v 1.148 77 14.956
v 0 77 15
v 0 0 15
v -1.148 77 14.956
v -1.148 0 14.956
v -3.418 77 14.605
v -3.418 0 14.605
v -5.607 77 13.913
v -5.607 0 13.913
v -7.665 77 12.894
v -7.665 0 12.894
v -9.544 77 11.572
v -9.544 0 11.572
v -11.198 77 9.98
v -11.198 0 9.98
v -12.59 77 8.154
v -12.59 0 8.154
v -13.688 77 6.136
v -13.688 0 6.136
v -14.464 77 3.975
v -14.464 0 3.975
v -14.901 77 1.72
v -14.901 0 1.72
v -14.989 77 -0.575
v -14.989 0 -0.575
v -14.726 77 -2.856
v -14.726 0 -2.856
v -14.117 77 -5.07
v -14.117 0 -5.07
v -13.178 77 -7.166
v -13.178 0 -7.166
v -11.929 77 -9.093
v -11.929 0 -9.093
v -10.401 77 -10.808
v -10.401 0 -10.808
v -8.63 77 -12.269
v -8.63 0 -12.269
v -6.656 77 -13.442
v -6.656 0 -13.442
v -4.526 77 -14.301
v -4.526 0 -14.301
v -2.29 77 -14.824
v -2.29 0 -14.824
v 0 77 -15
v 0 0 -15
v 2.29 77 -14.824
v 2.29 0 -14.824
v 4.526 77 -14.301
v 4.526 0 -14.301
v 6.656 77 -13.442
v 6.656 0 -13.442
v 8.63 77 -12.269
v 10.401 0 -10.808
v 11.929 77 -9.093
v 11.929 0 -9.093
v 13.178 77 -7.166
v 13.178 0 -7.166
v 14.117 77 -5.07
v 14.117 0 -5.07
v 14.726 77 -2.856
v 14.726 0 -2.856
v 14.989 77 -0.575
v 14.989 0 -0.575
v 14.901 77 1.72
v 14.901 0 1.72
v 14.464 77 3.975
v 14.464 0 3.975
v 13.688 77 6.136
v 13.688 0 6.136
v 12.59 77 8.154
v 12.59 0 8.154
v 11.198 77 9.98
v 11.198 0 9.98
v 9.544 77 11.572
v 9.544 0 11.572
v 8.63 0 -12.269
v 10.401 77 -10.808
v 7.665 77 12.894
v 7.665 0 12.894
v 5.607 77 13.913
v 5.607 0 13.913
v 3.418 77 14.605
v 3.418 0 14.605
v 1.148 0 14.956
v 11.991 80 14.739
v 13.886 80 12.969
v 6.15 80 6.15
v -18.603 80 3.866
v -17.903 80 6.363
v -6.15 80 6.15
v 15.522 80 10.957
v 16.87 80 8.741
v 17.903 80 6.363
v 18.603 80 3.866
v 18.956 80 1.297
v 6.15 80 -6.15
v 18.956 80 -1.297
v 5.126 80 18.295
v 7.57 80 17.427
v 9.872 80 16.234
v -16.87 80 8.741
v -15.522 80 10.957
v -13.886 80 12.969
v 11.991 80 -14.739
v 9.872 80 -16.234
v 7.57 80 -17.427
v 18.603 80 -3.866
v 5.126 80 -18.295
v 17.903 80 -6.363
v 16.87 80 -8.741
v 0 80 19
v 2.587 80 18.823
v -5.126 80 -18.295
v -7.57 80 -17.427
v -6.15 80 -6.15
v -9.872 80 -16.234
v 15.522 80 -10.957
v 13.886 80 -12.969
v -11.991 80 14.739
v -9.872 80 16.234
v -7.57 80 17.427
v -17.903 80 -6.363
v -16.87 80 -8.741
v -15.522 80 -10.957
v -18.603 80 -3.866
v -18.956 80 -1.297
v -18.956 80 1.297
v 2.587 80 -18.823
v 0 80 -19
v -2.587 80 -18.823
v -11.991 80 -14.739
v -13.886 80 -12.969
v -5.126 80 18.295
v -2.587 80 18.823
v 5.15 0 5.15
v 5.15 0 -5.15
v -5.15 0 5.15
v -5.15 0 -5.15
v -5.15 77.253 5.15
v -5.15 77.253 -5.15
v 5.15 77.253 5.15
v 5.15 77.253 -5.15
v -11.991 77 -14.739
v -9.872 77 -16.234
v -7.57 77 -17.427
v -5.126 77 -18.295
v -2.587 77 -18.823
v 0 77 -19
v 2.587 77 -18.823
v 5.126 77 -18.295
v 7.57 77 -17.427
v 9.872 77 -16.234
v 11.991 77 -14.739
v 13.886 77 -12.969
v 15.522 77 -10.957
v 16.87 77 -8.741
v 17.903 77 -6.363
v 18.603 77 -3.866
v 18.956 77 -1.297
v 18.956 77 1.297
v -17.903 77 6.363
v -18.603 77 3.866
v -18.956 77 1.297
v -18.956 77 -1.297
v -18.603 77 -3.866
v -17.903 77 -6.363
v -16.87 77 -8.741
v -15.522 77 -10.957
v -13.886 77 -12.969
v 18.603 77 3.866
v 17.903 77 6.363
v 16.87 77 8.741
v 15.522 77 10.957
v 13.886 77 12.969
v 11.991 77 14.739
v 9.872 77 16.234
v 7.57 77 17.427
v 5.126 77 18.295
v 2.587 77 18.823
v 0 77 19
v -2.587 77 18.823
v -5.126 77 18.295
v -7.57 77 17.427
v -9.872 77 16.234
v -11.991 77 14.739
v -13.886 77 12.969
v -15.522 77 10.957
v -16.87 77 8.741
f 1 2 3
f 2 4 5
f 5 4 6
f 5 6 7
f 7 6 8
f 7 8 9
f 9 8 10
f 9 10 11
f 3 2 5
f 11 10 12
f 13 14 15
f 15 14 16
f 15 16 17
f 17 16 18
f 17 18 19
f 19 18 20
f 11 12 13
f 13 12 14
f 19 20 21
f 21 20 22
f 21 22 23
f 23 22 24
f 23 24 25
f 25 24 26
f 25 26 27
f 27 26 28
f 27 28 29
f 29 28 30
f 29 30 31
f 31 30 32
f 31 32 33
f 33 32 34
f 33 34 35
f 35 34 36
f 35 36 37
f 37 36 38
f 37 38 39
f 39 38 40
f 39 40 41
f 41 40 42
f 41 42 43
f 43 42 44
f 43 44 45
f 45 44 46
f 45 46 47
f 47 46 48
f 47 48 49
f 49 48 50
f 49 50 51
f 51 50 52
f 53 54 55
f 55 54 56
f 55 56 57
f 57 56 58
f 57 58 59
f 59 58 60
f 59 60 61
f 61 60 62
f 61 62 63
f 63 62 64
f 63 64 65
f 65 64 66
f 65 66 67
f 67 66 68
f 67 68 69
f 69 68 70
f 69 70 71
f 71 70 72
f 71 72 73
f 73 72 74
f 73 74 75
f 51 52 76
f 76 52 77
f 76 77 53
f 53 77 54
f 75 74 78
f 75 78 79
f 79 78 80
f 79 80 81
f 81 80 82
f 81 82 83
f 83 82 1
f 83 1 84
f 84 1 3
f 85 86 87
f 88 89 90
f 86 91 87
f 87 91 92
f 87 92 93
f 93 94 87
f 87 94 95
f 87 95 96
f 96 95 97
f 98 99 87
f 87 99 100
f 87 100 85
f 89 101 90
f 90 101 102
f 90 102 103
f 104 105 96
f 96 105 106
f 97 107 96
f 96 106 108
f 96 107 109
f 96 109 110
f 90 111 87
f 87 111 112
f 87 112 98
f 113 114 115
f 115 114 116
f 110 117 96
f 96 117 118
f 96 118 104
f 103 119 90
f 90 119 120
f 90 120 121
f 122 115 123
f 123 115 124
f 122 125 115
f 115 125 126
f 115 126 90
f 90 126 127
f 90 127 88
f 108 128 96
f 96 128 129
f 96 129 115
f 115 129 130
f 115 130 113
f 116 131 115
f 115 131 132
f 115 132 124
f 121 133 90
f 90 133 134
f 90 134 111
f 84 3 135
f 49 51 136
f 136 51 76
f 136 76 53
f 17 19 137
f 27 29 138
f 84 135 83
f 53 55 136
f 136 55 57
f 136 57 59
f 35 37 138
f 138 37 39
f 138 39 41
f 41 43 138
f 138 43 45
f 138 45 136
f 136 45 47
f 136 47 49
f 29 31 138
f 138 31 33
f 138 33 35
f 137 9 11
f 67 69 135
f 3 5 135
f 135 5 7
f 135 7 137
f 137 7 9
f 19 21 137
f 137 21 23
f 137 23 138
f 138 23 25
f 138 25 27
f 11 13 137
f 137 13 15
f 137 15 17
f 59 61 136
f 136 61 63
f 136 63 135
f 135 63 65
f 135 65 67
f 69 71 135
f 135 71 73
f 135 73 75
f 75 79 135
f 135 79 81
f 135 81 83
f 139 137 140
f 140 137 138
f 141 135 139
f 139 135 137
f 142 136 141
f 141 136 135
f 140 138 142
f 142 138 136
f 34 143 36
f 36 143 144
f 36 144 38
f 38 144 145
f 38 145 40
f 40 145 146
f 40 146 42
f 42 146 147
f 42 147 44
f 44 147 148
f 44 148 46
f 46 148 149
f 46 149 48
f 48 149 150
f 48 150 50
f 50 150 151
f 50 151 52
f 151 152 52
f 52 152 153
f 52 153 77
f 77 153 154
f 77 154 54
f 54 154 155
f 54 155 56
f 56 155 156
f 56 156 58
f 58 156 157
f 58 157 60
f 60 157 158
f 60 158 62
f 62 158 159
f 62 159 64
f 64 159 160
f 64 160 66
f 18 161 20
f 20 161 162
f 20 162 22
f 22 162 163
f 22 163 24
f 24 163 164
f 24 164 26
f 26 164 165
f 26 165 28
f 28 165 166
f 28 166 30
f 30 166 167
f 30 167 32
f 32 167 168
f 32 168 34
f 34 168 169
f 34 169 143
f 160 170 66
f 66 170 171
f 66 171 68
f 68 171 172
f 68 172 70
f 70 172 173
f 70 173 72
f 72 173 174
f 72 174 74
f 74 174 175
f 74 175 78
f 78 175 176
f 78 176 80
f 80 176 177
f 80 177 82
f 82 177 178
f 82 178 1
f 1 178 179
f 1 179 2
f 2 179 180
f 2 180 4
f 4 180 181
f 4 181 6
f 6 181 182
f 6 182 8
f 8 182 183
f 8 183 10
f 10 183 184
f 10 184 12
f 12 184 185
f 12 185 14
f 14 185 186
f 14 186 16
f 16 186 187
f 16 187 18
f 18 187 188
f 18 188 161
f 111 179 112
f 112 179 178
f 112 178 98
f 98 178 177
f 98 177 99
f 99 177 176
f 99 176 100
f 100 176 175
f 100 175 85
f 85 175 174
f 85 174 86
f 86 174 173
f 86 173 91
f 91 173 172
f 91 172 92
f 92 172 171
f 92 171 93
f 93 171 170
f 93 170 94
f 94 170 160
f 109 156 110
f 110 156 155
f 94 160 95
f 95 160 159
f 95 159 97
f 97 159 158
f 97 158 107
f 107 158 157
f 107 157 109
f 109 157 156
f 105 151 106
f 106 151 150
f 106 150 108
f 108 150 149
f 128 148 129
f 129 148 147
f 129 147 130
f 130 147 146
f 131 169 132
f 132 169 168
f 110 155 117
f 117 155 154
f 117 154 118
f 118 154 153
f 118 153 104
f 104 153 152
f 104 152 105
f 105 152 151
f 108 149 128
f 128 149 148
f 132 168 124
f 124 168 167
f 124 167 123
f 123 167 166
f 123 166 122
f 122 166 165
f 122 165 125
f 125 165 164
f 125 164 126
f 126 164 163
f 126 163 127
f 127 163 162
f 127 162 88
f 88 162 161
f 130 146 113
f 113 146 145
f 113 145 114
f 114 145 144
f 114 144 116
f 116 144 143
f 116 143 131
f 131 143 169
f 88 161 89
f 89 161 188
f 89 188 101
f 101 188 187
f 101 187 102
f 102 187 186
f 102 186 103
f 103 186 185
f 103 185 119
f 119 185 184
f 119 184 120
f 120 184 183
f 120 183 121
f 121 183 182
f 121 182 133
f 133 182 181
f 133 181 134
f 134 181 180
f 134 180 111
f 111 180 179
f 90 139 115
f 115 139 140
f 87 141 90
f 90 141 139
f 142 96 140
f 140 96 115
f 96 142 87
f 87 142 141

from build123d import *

# Parameters (mm, degrees)
SKETCH_1_R          = 15
SKETCH_1_W          = 10.3
SKETCH_1_H          = 10.3
EXTRUDE_1_DEPTH     = 80
SKETCH1_R           = 19
SKETCH1_W           = 10.3
SKETCH1_H           = 10.3
BOSS_EXTRUDE1_DEPTH = 3
CHAMFER1_SIZE       = 1
CHAMFER1_SIZE2      = 2.747477419


with BuildPart() as part:
    # Эскиз1 → Бобышка-Вытянуть1 (new body)
    with BuildSketch(Plane(origin=(0, 0, 0), x_dir=(1, 0, 0), z_dir=(0, 1, 0))):
        Circle(SKETCH_1_R)
        Rectangle(SKETCH_1_W, SKETCH_1_H, mode=Mode.SUBTRACT)
    extrude(amount=EXTRUDE_1_DEPTH)

    # Sketch1 → Boss-Extrude1 (add)
    with BuildSketch(Plane(origin=(0, 80, 0), x_dir=(1, 0, 0), z_dir=(0, 1, 0))):
        Circle(SKETCH1_R)
        Rectangle(SKETCH1_W, SKETCH1_H, mode=Mode.SUBTRACT)
    extrude(amount=-BOSS_EXTRUDE1_DEPTH)

    # Chamfer1
    chamfer1_edges = [part.edges().sort_by_distance(p)[0] for p in [
        (0, 80, -5.15),
        (-5.15, 80, 0),
        (0, 80, 5.15),
        (5.15, 80, 0),
    ]]
    chamfer1_side = [part.faces().sort_by_distance(p)[0] for p in [
        (-18.462598846, 80, 0),
    ]]
    chamfer(chamfer1_edges, length=CHAMFER1_SIZE, length2=CHAMFER1_SIZE2, reference=chamfer1_side[0])


solid = part.part
